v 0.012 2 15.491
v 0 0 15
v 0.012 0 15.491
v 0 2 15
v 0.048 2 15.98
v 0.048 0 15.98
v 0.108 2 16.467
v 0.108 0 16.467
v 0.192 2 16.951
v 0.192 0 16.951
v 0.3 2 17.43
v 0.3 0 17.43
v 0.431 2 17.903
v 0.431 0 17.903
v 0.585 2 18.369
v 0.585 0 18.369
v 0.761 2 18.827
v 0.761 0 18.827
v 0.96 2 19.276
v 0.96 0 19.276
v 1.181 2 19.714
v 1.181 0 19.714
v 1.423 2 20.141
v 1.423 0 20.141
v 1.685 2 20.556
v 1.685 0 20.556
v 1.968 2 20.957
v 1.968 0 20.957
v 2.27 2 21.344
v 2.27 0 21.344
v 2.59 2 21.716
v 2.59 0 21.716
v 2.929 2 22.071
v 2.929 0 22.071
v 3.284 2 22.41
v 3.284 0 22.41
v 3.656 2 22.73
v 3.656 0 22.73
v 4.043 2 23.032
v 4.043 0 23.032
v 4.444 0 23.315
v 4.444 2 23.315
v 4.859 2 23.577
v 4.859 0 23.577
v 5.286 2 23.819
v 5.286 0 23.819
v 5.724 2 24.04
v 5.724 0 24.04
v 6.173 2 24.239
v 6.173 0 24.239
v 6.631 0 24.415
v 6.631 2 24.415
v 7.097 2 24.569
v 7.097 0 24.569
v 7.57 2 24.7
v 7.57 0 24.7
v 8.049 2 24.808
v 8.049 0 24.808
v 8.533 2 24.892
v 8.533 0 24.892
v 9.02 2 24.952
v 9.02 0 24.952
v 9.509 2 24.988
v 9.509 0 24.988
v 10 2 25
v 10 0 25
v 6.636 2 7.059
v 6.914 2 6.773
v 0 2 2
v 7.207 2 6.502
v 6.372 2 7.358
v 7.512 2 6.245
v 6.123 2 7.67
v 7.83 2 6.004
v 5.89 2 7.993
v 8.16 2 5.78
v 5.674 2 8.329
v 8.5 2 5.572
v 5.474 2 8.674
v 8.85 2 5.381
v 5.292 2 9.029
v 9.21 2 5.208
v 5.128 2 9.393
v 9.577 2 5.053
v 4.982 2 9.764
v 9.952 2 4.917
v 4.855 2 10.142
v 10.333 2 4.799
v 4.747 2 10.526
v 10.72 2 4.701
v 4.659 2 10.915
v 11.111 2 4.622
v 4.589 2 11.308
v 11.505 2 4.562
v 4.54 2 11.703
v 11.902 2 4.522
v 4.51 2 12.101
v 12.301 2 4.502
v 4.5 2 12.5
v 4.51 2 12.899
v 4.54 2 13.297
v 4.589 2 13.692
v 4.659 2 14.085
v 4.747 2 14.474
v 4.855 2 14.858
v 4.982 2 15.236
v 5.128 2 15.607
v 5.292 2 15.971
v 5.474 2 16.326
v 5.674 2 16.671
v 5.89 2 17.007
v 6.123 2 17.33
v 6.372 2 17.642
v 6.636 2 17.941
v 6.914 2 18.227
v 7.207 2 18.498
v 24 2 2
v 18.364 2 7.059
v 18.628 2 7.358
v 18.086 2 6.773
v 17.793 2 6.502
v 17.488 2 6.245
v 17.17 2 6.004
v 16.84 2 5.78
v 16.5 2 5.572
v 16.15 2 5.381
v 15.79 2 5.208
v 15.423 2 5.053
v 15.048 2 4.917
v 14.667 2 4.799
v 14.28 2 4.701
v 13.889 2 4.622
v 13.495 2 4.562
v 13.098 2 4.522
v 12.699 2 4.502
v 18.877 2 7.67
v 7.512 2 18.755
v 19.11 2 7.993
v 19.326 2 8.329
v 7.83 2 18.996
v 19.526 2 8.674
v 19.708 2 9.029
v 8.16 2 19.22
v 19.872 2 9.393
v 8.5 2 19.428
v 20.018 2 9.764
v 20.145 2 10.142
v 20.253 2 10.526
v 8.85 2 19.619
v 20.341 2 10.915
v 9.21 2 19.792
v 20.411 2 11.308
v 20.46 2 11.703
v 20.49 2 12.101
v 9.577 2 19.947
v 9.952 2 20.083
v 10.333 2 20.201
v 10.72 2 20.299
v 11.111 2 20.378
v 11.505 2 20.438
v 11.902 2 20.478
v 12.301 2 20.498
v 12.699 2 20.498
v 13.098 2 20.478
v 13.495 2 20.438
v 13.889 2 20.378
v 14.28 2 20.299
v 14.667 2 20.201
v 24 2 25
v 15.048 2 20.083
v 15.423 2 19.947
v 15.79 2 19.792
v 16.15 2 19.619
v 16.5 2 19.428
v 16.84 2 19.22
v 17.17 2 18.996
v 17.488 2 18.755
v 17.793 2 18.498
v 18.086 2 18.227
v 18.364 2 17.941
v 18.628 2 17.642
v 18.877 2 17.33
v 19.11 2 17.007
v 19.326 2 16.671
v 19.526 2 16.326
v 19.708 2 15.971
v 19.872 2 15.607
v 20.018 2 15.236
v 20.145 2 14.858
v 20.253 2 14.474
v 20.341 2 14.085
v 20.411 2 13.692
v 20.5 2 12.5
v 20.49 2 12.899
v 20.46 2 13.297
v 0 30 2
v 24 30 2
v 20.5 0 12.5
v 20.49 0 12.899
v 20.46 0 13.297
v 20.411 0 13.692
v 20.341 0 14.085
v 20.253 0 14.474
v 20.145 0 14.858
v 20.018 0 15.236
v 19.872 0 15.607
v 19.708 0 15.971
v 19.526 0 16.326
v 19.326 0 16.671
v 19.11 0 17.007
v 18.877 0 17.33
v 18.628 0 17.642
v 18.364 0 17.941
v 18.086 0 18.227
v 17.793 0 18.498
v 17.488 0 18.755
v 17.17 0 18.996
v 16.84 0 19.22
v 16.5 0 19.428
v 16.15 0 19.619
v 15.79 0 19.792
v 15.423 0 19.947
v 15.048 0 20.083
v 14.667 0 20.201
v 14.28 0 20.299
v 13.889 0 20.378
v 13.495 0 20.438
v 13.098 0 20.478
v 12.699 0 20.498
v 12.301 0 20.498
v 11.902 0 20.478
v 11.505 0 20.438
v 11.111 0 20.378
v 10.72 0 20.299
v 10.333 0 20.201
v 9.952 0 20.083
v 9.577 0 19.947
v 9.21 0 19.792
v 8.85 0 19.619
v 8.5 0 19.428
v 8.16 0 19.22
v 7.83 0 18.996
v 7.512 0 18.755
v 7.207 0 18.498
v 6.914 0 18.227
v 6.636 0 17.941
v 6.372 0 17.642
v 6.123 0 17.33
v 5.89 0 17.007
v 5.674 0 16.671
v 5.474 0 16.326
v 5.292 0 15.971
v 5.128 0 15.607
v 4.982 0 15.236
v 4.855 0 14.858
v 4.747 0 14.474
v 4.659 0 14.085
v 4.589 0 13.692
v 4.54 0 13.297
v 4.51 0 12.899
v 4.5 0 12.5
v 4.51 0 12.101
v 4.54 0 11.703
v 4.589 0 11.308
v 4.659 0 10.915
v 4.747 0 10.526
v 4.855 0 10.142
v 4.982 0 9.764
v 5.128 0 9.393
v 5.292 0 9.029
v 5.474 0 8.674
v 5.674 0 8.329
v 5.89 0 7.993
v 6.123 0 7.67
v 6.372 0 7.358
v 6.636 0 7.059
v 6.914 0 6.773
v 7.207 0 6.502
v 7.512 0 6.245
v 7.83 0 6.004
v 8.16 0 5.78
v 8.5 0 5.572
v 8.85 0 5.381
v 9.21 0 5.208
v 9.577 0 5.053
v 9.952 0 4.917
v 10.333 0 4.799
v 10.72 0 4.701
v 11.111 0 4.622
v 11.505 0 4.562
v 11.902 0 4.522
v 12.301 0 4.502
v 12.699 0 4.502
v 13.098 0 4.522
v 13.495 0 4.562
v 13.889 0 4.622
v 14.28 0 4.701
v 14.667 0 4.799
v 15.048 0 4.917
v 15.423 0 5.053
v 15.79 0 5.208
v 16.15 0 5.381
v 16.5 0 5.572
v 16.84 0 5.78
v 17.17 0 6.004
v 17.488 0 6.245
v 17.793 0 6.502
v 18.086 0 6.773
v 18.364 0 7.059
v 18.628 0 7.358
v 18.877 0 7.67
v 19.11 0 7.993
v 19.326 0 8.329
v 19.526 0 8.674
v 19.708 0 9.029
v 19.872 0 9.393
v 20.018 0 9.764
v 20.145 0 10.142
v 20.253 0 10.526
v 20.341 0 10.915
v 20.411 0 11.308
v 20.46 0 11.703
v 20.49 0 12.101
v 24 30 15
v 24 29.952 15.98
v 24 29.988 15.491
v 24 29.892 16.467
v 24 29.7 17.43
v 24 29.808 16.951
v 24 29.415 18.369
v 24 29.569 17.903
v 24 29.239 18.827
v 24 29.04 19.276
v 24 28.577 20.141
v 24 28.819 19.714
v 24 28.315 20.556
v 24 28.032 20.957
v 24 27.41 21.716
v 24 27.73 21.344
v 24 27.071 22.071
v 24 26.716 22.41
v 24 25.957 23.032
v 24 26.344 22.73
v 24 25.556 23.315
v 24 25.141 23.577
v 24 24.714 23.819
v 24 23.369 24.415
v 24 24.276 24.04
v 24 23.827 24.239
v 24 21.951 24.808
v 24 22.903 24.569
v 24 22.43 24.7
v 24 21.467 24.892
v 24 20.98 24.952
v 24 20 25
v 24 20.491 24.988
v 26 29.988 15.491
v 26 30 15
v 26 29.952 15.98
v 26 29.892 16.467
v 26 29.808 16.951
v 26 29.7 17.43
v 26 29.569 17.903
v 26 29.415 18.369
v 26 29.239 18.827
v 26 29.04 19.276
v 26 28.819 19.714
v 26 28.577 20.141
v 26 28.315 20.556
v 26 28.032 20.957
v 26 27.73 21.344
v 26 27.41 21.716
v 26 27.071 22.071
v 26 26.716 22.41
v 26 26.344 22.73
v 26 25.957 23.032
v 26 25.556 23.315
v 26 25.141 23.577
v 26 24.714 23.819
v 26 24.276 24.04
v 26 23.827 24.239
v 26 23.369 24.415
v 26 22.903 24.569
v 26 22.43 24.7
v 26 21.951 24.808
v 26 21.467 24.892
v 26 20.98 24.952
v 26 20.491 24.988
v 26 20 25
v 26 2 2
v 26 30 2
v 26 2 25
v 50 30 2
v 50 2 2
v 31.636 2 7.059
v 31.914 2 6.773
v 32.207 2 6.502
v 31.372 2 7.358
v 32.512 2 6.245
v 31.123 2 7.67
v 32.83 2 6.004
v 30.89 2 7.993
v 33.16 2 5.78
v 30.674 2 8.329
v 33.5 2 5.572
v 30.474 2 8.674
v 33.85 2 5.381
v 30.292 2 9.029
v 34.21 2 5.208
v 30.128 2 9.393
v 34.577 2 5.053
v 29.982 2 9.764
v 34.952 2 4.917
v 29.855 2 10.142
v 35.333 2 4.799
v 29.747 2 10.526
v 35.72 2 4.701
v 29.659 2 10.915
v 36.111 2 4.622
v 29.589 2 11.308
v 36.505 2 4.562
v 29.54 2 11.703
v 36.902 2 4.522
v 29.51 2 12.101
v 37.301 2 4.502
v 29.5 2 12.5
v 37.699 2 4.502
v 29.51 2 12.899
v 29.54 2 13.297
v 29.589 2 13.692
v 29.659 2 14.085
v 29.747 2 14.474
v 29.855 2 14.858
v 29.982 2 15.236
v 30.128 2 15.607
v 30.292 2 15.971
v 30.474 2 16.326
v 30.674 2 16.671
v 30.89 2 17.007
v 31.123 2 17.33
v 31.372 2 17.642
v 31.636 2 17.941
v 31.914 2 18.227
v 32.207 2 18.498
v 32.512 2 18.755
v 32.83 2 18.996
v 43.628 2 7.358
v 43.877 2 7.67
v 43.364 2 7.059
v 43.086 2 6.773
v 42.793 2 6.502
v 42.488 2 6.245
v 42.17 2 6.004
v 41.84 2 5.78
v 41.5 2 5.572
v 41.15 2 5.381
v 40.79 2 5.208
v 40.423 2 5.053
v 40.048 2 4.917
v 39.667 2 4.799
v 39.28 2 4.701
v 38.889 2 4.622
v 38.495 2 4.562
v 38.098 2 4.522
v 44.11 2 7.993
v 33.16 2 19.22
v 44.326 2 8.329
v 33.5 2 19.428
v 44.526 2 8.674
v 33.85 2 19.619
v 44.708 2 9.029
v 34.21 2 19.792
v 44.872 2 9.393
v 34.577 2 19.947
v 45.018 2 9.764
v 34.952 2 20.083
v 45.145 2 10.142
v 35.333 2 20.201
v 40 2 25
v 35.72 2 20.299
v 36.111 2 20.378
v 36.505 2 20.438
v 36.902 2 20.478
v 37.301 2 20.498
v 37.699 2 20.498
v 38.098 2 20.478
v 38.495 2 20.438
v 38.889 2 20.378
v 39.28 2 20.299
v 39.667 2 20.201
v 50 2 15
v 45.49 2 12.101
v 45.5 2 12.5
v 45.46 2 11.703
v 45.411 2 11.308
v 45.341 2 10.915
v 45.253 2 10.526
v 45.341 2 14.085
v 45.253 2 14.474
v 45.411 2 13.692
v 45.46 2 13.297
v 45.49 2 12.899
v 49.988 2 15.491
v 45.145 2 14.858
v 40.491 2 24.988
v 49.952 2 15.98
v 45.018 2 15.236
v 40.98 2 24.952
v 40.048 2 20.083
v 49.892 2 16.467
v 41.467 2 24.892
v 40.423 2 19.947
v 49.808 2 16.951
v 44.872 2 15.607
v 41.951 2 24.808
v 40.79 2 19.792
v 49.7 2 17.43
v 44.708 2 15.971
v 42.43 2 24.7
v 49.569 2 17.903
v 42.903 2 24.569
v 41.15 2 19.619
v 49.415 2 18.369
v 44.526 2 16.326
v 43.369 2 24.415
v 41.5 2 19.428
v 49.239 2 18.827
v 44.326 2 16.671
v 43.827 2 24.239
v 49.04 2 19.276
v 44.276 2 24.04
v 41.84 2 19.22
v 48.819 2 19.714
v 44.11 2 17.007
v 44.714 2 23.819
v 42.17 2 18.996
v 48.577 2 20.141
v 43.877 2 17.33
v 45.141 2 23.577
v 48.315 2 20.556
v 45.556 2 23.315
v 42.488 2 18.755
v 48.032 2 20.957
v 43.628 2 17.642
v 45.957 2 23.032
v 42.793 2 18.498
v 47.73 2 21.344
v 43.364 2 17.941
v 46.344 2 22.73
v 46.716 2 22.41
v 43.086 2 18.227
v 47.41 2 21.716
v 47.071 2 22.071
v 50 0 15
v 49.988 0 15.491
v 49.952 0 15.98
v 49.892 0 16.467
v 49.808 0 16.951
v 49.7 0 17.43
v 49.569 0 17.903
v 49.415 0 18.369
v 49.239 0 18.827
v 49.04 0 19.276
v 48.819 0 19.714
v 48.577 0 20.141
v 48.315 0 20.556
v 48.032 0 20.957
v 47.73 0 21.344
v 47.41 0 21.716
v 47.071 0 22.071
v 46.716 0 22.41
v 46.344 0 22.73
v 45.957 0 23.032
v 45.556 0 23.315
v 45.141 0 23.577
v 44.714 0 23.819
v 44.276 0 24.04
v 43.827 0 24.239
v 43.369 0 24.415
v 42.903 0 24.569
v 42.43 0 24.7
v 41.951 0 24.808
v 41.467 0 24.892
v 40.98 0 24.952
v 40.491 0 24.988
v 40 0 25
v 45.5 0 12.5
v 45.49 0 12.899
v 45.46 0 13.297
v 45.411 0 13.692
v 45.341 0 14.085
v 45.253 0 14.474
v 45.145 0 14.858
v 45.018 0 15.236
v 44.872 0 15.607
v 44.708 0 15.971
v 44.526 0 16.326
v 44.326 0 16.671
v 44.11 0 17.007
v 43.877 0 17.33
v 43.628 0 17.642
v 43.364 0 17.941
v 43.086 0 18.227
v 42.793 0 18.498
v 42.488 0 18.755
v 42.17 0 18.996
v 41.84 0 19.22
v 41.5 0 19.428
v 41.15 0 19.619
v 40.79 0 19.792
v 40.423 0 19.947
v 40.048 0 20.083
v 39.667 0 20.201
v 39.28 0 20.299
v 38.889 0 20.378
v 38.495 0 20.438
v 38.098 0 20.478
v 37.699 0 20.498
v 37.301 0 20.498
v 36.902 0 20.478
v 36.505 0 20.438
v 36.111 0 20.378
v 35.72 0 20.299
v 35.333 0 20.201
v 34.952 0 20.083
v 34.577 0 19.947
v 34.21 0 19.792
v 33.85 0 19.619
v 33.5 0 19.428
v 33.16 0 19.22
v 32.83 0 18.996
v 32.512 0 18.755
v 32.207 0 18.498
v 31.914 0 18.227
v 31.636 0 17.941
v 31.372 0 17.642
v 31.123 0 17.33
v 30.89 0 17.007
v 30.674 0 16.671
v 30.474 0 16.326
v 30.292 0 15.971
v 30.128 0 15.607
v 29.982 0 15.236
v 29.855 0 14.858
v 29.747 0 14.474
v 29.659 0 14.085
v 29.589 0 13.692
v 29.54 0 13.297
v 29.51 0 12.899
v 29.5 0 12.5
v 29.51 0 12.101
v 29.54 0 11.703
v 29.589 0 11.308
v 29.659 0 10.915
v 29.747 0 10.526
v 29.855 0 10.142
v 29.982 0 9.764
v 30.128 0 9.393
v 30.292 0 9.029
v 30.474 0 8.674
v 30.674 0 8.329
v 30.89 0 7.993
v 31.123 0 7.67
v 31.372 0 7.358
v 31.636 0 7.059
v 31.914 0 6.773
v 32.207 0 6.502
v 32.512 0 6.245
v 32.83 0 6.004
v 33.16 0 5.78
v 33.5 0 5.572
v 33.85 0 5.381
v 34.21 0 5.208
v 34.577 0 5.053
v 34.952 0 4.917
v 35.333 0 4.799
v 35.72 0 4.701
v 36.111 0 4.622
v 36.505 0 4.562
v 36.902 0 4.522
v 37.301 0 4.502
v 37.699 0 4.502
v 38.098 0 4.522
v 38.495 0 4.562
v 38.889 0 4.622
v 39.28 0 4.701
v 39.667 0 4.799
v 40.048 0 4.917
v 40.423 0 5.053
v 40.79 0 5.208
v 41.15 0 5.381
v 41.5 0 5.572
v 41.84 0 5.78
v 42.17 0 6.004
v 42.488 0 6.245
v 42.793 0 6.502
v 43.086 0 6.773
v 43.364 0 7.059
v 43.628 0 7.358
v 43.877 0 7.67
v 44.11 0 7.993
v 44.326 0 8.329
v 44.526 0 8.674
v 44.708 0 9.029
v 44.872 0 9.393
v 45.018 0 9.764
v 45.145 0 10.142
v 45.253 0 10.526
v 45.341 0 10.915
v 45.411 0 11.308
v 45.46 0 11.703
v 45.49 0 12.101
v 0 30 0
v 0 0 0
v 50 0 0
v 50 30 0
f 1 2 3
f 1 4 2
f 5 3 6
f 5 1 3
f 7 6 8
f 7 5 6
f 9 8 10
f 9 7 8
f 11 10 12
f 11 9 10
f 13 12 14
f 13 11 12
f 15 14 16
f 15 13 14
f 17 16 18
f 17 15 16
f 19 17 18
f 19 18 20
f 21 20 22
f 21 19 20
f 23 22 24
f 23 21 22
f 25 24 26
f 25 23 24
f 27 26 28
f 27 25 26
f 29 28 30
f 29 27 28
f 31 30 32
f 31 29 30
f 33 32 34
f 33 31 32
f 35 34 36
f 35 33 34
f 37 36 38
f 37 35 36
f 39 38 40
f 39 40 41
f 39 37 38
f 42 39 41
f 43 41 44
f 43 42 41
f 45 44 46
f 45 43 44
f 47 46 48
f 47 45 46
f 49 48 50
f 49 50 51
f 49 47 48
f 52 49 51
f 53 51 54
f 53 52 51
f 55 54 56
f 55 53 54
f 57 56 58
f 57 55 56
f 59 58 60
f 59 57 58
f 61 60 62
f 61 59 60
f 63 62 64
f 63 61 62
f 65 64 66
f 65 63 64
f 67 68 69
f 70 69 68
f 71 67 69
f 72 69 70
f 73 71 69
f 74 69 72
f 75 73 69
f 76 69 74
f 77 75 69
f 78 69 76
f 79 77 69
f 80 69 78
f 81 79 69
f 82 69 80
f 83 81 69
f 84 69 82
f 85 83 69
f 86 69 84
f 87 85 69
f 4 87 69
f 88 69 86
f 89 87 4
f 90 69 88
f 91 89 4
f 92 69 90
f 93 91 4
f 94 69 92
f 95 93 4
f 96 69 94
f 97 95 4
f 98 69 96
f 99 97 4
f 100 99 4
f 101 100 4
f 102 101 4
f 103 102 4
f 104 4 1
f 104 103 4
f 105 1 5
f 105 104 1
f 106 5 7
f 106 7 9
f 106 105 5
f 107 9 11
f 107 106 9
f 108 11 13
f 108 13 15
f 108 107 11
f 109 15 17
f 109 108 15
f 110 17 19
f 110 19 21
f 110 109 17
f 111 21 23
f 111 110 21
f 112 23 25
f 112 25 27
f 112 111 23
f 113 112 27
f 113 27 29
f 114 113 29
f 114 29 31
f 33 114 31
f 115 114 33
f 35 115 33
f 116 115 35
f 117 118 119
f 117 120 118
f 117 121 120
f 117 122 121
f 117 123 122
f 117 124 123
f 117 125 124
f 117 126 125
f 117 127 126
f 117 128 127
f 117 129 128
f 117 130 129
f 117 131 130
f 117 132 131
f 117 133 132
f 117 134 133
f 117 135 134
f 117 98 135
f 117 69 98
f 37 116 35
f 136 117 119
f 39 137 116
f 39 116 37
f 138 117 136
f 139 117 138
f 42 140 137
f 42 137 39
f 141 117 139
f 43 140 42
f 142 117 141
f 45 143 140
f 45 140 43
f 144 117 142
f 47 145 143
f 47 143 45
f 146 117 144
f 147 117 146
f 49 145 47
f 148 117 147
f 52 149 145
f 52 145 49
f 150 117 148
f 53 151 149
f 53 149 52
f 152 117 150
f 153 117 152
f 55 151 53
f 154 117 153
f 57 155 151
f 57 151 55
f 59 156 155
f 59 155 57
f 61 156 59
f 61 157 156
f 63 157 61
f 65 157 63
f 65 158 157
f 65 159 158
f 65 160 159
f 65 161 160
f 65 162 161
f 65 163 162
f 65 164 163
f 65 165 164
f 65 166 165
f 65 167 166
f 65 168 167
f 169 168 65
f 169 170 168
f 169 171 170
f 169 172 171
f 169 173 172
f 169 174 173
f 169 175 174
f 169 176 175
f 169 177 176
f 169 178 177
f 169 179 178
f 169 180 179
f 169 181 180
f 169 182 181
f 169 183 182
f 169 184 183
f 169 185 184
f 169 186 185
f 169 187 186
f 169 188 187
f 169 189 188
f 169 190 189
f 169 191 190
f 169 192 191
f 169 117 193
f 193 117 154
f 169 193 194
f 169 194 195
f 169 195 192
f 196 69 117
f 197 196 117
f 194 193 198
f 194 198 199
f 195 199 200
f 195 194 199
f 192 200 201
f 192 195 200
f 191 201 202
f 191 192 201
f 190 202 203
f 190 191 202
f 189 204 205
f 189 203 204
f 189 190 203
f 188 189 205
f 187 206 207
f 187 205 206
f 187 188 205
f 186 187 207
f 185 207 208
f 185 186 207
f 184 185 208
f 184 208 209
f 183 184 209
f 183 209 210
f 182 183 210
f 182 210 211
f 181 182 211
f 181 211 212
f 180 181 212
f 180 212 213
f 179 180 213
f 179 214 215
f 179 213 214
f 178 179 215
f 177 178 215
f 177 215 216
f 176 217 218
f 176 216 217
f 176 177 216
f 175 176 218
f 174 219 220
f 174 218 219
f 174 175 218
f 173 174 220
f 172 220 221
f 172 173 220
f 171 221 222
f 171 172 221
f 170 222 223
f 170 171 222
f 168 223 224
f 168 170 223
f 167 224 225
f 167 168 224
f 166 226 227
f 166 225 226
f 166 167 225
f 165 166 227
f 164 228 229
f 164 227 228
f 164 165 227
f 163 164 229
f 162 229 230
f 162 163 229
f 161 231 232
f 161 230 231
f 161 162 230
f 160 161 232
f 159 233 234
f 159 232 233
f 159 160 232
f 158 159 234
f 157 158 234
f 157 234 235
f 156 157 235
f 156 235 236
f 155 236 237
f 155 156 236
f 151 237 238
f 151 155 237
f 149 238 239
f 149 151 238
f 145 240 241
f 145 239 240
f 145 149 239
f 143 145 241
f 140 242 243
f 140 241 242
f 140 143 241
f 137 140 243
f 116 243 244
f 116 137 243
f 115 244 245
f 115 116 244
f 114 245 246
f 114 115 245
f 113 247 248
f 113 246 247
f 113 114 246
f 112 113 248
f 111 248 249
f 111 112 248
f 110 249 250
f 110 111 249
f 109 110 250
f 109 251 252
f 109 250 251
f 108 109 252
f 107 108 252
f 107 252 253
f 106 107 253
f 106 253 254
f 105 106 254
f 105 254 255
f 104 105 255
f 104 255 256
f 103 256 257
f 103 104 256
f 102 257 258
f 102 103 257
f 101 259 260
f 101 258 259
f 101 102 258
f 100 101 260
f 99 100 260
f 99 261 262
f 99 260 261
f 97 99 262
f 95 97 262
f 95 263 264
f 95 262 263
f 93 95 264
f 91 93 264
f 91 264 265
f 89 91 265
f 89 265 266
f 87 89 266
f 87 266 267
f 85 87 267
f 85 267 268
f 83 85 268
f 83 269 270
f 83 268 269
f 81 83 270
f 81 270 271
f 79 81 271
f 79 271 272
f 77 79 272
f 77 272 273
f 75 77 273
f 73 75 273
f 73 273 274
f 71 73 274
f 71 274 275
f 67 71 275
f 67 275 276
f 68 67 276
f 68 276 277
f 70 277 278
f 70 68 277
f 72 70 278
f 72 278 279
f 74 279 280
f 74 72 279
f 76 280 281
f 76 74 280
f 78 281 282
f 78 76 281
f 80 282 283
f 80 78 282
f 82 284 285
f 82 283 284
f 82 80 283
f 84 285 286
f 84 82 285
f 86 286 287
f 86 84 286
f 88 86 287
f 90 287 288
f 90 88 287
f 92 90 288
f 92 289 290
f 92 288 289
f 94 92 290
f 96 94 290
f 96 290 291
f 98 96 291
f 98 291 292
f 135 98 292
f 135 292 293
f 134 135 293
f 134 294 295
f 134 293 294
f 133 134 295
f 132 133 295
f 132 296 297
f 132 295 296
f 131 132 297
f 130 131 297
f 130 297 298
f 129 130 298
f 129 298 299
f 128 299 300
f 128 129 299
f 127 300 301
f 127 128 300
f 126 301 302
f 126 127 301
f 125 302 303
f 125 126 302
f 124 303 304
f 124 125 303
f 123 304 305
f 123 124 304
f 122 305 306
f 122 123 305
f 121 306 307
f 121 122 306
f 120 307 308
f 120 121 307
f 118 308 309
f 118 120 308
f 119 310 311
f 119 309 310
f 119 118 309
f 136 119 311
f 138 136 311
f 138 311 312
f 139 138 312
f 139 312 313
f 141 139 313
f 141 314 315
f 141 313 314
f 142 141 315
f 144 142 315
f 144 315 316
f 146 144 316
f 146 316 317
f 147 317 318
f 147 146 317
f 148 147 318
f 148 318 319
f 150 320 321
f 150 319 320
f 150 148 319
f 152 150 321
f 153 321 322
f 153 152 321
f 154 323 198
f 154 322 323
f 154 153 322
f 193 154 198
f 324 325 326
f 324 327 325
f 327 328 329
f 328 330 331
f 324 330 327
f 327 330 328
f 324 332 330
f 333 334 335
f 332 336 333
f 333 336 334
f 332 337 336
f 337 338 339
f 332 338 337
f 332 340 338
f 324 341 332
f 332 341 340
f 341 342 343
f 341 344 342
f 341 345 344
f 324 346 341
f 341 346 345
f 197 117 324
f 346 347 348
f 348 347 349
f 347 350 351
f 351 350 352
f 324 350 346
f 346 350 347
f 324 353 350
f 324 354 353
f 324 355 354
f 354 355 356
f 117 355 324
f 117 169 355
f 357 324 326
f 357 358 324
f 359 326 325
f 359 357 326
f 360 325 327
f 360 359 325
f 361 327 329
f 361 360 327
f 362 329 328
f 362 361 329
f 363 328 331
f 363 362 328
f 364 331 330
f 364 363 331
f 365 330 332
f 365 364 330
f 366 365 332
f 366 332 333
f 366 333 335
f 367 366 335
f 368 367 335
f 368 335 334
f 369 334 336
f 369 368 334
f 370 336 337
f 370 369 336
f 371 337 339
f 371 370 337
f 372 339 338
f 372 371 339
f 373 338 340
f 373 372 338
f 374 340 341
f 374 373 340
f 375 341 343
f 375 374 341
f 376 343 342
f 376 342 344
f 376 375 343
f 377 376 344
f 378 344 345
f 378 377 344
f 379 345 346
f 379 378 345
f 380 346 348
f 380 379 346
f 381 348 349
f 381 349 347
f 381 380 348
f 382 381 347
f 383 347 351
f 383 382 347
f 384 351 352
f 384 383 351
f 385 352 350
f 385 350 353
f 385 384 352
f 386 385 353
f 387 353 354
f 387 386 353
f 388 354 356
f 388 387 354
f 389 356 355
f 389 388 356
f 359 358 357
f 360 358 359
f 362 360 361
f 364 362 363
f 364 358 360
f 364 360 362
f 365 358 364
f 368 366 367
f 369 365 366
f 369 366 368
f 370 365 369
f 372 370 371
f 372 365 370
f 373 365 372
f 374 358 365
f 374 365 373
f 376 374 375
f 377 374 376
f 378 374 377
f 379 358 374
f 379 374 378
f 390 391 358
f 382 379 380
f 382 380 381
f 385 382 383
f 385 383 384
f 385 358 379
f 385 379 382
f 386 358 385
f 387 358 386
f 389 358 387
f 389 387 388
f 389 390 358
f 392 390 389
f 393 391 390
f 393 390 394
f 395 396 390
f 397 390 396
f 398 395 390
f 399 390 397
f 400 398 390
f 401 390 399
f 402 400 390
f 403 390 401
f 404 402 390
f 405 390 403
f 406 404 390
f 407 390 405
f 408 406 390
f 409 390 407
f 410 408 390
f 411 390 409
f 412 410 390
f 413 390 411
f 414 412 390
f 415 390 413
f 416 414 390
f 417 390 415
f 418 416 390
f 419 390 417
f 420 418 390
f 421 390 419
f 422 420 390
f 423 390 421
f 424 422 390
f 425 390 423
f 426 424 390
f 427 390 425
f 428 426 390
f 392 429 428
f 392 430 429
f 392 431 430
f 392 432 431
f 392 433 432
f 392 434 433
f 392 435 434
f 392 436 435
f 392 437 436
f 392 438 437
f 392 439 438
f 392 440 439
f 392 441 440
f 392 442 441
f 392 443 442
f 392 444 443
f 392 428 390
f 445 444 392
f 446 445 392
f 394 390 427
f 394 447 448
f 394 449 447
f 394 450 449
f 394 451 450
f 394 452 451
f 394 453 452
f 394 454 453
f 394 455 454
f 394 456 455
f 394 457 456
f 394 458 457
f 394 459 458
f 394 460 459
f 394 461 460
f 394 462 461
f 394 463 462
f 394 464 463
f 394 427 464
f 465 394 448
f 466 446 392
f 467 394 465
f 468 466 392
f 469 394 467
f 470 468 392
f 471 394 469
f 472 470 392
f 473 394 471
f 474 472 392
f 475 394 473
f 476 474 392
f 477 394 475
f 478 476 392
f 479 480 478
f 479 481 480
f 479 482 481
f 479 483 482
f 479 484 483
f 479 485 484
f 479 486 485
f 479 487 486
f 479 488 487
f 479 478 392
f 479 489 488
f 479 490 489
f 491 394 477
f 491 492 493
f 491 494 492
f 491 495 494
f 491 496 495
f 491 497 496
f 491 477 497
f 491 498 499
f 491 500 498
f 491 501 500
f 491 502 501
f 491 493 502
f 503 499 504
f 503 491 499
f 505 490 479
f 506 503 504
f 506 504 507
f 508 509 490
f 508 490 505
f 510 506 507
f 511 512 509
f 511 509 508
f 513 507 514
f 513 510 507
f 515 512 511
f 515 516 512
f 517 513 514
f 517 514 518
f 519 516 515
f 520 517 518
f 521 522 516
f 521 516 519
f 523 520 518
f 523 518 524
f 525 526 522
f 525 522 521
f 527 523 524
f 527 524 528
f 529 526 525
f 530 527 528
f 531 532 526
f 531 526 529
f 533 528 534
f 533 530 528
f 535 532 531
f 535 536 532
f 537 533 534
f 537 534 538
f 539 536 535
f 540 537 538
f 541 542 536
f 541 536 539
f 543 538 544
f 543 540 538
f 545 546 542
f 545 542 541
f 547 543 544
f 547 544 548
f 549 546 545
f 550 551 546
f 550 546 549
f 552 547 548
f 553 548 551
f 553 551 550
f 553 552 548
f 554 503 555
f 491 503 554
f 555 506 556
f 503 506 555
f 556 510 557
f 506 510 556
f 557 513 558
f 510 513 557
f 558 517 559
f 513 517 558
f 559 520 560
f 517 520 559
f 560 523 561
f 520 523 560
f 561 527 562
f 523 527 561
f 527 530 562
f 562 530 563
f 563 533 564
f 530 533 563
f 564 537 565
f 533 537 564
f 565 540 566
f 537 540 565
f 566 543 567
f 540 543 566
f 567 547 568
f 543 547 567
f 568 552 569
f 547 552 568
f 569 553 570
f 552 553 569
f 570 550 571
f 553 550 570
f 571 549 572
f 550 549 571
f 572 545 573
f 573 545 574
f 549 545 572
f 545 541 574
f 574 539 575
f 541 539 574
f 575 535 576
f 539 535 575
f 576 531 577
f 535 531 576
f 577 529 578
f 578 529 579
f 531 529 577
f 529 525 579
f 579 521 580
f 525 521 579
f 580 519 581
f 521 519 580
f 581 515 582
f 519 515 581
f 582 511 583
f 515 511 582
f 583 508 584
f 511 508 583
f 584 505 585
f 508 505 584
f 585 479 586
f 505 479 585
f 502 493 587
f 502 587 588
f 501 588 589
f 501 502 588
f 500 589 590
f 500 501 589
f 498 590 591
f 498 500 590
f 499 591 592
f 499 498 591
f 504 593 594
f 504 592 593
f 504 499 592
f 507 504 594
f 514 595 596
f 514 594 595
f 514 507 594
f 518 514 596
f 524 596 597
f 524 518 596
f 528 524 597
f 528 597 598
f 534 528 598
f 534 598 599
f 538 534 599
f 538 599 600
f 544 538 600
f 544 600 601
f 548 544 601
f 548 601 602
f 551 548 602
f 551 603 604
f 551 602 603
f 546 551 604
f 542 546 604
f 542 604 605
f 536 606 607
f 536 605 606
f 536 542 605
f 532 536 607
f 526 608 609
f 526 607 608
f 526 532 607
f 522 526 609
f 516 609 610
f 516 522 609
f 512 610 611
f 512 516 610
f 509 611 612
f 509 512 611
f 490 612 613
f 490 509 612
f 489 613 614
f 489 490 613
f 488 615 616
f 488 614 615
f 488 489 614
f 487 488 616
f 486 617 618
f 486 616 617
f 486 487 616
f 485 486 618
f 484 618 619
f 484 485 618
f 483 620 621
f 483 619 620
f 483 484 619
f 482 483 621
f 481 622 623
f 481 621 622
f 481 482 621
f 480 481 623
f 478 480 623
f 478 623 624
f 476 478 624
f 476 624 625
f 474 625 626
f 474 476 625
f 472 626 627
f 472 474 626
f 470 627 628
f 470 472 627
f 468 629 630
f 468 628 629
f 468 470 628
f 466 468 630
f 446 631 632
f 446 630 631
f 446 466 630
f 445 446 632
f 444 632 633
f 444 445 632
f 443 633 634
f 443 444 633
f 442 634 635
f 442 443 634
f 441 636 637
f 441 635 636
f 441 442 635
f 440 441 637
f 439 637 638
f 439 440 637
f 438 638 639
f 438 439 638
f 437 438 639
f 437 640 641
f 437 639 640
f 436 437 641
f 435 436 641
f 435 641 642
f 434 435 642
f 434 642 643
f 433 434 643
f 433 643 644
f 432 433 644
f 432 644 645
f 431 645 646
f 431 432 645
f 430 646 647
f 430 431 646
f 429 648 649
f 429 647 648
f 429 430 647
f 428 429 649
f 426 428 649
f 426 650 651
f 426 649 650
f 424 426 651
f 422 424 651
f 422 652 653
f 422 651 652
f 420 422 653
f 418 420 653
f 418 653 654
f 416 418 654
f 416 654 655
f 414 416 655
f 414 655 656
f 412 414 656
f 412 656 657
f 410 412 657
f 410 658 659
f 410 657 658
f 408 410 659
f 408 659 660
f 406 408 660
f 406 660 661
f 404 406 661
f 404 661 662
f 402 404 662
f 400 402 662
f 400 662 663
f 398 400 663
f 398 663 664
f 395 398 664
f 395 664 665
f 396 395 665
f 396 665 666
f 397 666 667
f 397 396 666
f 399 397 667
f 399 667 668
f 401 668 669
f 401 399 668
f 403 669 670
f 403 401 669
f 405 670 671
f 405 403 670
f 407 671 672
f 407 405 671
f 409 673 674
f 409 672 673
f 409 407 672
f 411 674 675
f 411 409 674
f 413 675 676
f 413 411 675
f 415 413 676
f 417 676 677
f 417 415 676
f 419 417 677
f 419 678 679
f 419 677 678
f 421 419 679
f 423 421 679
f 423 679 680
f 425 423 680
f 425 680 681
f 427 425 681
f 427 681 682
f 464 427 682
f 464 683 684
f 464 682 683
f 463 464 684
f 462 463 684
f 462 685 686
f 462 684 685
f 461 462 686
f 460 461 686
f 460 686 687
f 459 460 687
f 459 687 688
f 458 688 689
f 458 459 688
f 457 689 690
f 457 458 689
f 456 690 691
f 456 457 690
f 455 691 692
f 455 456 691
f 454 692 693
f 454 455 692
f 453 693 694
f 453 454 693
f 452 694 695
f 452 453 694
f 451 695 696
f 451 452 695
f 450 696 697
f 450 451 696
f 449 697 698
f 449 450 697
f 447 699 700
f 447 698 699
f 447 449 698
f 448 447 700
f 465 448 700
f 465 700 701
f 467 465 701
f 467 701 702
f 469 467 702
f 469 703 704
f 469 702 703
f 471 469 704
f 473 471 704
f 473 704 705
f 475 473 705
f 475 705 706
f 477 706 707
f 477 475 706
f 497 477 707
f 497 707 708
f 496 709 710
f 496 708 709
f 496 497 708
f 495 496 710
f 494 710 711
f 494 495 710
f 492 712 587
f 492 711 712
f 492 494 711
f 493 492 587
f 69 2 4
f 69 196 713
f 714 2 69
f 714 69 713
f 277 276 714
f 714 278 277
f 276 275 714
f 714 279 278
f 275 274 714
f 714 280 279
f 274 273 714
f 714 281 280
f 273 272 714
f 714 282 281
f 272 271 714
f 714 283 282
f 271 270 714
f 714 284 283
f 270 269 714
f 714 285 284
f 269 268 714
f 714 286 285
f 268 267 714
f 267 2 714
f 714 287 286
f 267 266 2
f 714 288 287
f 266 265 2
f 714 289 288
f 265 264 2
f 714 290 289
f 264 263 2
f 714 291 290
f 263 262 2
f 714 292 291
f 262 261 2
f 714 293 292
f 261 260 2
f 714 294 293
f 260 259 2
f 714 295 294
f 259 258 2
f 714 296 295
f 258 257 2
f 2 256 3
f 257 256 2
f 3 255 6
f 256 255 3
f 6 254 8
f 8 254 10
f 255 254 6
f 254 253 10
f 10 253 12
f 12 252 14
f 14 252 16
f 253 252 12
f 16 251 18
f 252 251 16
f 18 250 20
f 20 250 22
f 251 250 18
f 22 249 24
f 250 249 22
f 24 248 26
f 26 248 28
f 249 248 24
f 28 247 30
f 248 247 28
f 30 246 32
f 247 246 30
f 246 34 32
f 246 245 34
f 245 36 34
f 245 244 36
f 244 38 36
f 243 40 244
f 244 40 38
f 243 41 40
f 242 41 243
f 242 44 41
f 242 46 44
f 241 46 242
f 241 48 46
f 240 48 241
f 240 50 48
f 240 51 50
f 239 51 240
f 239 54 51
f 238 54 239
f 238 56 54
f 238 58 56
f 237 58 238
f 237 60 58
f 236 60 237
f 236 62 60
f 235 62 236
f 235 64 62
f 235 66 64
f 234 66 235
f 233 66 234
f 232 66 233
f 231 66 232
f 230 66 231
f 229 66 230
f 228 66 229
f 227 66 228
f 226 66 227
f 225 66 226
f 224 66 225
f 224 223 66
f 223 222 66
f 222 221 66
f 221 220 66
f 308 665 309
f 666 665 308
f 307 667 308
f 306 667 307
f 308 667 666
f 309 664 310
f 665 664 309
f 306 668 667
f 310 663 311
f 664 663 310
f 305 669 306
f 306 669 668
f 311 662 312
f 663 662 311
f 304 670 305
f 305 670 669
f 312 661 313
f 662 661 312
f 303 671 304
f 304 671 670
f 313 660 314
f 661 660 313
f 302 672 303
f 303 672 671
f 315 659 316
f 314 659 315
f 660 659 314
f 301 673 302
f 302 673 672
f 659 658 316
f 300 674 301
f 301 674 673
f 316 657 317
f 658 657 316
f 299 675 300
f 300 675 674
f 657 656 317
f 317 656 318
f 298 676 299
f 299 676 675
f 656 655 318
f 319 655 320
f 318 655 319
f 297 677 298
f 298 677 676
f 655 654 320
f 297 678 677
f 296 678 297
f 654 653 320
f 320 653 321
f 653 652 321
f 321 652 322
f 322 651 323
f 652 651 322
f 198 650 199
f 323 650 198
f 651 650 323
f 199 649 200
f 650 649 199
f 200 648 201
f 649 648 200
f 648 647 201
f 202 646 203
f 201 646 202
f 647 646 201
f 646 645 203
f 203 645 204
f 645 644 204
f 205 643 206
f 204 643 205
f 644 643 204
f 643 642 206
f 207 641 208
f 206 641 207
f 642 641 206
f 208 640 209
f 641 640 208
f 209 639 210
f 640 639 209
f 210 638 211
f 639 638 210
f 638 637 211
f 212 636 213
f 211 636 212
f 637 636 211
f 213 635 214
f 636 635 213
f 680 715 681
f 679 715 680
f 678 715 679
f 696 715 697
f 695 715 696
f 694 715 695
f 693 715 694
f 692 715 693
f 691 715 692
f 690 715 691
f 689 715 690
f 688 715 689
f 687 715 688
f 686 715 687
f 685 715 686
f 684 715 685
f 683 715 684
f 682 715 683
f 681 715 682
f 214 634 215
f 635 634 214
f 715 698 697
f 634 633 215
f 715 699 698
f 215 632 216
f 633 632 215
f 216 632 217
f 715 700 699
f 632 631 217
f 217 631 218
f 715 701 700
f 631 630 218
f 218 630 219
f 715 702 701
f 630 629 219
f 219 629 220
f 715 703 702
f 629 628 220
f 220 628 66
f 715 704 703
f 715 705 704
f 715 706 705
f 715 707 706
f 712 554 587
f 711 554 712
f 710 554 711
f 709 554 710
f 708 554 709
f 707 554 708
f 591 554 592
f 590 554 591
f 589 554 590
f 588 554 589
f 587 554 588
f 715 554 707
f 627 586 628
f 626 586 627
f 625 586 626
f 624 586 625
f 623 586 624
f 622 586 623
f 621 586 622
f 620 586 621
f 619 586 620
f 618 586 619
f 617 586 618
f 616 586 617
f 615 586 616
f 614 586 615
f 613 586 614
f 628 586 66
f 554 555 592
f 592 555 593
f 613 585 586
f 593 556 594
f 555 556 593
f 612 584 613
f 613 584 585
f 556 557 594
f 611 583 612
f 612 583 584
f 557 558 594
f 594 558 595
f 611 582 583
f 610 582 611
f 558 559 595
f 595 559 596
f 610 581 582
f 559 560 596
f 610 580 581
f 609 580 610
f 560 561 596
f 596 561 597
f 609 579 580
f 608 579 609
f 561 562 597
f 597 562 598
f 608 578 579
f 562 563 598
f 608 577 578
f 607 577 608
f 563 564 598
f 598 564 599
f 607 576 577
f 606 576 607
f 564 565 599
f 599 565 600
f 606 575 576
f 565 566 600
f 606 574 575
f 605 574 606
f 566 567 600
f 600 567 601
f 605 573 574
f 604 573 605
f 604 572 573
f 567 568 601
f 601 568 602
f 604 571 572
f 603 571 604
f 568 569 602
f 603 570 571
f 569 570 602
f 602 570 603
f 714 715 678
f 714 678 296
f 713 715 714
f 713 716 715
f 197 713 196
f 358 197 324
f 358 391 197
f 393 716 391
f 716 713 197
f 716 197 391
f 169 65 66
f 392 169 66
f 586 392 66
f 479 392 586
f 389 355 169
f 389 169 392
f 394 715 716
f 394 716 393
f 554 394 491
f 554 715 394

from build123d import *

# Parameters (mm, degrees)
CYLINDER_R        = 8
CYLINDER_DEPTH    = 10
CYLINDER001_R     = 8
CYLINDER001_DEPTH = 10
BOX002_W          = 2
BOX002_H          = 30
BOX002_DEPTH      = 25
FILLET_R          = 10
BOX001_W          = 50
BOX001_H          = 2
BOX001_DEPTH      = 25
FILLET001_R       = 10
BOX_W             = 50
BOX_H             = 30
BOX_DEPTH         = 2


with BuildPart() as cylinder:
    # Cylinder → Cylinder (new body)
    with BuildSketch(Plane(origin=(12.5, 4, 12.5), x_dir=(1, 0, 0), z_dir=(0, -1, 0))):
        Circle(CYLINDER_R)
    extrude(amount=CYLINDER_DEPTH)


with BuildPart() as fusion:
    # Cylinder001 → Cylinder001 (new body)
    with BuildSketch(Plane(origin=(37.5, 4, 12.5), x_dir=(1, 0, 0), z_dir=(0, -1, 0))):
        Circle(CYLINDER001_R)
    extrude(amount=CYLINDER001_DEPTH)

    # Fusion: union Cylinder
    add(cylinder.part)


with BuildPart() as fillet_body:
    # Box002 → Box002 (new body)
    with BuildSketch(Plane(origin=(24, 0, 0), x_dir=(1, 0, 0), z_dir=(0, 0, 1))):
        with Locations((1, 15)):
            Rectangle(BOX002_W, BOX002_H)
    extrude(amount=BOX002_DEPTH)

    # Fillet
    fillet_edges = [fillet_body.edges().sort_by_distance(p)[0] for p in [
        (25, 30, 25),
    ]]
    fillet(fillet_edges, radius=FILLET_R)


with BuildPart() as fillet001:
    # Box001 → Box001 (new body)
    with BuildSketch(Plane.XY):
        with Locations((25, 1)):
            Rectangle(BOX001_W, BOX001_H)
    extrude(amount=BOX001_DEPTH)

    # Fillet001
    fillet001_edges = [fillet001.edges().sort_by_distance(p)[0] for p in [
        (0, 1, 25),
        (50, 1, 25),
    ]]
    fillet(fillet001_edges, radius=FILLET001_R)


with BuildPart() as cut001:
    # Box → Box (new body)
    with BuildSketch(Plane.XY):
        with Locations((25, 15)):
            Rectangle(BOX_W, BOX_H)
    extrude(amount=BOX_DEPTH)

    # Fusion001: union Fillet body, Fillet001
    add(fillet_body.part)
    add(fillet001.part)

    # Cut: cut Fusion
    add(fusion.part, mode=Mode.SUBTRACT)


solid = cut001.part
